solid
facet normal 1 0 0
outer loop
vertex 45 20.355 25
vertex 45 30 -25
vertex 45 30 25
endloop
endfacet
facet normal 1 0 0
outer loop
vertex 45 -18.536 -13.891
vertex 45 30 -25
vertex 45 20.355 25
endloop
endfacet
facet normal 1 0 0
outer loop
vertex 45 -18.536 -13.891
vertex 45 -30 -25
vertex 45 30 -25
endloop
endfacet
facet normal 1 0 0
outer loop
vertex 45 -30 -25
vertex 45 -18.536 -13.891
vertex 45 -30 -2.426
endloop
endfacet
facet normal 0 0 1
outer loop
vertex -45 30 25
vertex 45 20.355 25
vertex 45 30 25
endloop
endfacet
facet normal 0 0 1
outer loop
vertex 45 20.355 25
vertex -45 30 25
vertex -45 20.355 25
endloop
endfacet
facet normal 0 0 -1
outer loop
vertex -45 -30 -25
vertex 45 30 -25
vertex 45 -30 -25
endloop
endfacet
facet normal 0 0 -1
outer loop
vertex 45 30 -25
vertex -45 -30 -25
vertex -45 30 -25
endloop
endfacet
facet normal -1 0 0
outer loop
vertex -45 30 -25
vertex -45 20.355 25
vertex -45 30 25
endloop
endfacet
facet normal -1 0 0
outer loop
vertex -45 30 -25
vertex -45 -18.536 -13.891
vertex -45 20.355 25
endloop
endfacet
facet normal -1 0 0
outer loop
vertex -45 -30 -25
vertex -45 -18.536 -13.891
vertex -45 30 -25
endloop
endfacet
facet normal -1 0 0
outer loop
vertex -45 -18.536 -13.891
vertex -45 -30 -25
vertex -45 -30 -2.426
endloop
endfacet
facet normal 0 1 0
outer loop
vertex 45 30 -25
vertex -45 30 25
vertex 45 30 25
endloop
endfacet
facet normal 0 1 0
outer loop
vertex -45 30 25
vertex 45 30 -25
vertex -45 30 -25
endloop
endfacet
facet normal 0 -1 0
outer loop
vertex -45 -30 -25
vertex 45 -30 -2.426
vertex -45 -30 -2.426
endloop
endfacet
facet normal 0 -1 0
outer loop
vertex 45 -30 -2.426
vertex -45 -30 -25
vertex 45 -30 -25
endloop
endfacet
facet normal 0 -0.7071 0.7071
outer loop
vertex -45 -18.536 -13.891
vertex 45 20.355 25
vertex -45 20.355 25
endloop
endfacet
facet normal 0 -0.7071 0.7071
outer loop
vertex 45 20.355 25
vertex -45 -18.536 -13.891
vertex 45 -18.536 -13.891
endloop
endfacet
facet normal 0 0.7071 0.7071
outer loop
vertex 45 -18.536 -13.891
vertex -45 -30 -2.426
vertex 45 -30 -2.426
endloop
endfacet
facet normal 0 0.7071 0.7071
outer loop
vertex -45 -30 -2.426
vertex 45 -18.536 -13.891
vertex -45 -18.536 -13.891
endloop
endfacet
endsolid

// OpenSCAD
// settings
TRUSDX_WIDTH = 90;
TRUSDX_DEPTH = 60;
TRUSDX_HEIGHT = 30;

HOLDER_TRUSDX_HEIGHT_EXTENSION = 20;
HOLDER_TRUSDX_DISPLACEMENT_Y = -15;
HOLDER_TRUSDX_DISPLACEMENT_Z = 25;

HOLDER_WIDTH = TRUSDX_WIDTH;
HOLDER_DEPTH = TRUSDX_DEPTH;
HOLDER_HEIGHT = 50;

HOLDER_ANGLE_DEGREES = 45;

module trusdx(width, depth, height) {
    cube([width, depth, height], center = true);
}

module holder(width, depth, height) {
    cube([width, depth, height], center = true);
}

// main script
difference() {
    holder(HOLDER_WIDTH, HOLDER_DEPTH, HOLDER_HEIGHT);
    translate([0, HOLDER_TRUSDX_DISPLACEMENT_Y, HOLDER_TRUSDX_DISPLACEMENT_Z])
    rotate([HOLDER_ANGLE_DEGREES, 0, 0])
    trusdx(TRUSDX_WIDTH, TRUSDX_DEPTH, TRUSDX_HEIGHT + HOLDER_TRUSDX_HEIGHT_EXTENSION);
}
